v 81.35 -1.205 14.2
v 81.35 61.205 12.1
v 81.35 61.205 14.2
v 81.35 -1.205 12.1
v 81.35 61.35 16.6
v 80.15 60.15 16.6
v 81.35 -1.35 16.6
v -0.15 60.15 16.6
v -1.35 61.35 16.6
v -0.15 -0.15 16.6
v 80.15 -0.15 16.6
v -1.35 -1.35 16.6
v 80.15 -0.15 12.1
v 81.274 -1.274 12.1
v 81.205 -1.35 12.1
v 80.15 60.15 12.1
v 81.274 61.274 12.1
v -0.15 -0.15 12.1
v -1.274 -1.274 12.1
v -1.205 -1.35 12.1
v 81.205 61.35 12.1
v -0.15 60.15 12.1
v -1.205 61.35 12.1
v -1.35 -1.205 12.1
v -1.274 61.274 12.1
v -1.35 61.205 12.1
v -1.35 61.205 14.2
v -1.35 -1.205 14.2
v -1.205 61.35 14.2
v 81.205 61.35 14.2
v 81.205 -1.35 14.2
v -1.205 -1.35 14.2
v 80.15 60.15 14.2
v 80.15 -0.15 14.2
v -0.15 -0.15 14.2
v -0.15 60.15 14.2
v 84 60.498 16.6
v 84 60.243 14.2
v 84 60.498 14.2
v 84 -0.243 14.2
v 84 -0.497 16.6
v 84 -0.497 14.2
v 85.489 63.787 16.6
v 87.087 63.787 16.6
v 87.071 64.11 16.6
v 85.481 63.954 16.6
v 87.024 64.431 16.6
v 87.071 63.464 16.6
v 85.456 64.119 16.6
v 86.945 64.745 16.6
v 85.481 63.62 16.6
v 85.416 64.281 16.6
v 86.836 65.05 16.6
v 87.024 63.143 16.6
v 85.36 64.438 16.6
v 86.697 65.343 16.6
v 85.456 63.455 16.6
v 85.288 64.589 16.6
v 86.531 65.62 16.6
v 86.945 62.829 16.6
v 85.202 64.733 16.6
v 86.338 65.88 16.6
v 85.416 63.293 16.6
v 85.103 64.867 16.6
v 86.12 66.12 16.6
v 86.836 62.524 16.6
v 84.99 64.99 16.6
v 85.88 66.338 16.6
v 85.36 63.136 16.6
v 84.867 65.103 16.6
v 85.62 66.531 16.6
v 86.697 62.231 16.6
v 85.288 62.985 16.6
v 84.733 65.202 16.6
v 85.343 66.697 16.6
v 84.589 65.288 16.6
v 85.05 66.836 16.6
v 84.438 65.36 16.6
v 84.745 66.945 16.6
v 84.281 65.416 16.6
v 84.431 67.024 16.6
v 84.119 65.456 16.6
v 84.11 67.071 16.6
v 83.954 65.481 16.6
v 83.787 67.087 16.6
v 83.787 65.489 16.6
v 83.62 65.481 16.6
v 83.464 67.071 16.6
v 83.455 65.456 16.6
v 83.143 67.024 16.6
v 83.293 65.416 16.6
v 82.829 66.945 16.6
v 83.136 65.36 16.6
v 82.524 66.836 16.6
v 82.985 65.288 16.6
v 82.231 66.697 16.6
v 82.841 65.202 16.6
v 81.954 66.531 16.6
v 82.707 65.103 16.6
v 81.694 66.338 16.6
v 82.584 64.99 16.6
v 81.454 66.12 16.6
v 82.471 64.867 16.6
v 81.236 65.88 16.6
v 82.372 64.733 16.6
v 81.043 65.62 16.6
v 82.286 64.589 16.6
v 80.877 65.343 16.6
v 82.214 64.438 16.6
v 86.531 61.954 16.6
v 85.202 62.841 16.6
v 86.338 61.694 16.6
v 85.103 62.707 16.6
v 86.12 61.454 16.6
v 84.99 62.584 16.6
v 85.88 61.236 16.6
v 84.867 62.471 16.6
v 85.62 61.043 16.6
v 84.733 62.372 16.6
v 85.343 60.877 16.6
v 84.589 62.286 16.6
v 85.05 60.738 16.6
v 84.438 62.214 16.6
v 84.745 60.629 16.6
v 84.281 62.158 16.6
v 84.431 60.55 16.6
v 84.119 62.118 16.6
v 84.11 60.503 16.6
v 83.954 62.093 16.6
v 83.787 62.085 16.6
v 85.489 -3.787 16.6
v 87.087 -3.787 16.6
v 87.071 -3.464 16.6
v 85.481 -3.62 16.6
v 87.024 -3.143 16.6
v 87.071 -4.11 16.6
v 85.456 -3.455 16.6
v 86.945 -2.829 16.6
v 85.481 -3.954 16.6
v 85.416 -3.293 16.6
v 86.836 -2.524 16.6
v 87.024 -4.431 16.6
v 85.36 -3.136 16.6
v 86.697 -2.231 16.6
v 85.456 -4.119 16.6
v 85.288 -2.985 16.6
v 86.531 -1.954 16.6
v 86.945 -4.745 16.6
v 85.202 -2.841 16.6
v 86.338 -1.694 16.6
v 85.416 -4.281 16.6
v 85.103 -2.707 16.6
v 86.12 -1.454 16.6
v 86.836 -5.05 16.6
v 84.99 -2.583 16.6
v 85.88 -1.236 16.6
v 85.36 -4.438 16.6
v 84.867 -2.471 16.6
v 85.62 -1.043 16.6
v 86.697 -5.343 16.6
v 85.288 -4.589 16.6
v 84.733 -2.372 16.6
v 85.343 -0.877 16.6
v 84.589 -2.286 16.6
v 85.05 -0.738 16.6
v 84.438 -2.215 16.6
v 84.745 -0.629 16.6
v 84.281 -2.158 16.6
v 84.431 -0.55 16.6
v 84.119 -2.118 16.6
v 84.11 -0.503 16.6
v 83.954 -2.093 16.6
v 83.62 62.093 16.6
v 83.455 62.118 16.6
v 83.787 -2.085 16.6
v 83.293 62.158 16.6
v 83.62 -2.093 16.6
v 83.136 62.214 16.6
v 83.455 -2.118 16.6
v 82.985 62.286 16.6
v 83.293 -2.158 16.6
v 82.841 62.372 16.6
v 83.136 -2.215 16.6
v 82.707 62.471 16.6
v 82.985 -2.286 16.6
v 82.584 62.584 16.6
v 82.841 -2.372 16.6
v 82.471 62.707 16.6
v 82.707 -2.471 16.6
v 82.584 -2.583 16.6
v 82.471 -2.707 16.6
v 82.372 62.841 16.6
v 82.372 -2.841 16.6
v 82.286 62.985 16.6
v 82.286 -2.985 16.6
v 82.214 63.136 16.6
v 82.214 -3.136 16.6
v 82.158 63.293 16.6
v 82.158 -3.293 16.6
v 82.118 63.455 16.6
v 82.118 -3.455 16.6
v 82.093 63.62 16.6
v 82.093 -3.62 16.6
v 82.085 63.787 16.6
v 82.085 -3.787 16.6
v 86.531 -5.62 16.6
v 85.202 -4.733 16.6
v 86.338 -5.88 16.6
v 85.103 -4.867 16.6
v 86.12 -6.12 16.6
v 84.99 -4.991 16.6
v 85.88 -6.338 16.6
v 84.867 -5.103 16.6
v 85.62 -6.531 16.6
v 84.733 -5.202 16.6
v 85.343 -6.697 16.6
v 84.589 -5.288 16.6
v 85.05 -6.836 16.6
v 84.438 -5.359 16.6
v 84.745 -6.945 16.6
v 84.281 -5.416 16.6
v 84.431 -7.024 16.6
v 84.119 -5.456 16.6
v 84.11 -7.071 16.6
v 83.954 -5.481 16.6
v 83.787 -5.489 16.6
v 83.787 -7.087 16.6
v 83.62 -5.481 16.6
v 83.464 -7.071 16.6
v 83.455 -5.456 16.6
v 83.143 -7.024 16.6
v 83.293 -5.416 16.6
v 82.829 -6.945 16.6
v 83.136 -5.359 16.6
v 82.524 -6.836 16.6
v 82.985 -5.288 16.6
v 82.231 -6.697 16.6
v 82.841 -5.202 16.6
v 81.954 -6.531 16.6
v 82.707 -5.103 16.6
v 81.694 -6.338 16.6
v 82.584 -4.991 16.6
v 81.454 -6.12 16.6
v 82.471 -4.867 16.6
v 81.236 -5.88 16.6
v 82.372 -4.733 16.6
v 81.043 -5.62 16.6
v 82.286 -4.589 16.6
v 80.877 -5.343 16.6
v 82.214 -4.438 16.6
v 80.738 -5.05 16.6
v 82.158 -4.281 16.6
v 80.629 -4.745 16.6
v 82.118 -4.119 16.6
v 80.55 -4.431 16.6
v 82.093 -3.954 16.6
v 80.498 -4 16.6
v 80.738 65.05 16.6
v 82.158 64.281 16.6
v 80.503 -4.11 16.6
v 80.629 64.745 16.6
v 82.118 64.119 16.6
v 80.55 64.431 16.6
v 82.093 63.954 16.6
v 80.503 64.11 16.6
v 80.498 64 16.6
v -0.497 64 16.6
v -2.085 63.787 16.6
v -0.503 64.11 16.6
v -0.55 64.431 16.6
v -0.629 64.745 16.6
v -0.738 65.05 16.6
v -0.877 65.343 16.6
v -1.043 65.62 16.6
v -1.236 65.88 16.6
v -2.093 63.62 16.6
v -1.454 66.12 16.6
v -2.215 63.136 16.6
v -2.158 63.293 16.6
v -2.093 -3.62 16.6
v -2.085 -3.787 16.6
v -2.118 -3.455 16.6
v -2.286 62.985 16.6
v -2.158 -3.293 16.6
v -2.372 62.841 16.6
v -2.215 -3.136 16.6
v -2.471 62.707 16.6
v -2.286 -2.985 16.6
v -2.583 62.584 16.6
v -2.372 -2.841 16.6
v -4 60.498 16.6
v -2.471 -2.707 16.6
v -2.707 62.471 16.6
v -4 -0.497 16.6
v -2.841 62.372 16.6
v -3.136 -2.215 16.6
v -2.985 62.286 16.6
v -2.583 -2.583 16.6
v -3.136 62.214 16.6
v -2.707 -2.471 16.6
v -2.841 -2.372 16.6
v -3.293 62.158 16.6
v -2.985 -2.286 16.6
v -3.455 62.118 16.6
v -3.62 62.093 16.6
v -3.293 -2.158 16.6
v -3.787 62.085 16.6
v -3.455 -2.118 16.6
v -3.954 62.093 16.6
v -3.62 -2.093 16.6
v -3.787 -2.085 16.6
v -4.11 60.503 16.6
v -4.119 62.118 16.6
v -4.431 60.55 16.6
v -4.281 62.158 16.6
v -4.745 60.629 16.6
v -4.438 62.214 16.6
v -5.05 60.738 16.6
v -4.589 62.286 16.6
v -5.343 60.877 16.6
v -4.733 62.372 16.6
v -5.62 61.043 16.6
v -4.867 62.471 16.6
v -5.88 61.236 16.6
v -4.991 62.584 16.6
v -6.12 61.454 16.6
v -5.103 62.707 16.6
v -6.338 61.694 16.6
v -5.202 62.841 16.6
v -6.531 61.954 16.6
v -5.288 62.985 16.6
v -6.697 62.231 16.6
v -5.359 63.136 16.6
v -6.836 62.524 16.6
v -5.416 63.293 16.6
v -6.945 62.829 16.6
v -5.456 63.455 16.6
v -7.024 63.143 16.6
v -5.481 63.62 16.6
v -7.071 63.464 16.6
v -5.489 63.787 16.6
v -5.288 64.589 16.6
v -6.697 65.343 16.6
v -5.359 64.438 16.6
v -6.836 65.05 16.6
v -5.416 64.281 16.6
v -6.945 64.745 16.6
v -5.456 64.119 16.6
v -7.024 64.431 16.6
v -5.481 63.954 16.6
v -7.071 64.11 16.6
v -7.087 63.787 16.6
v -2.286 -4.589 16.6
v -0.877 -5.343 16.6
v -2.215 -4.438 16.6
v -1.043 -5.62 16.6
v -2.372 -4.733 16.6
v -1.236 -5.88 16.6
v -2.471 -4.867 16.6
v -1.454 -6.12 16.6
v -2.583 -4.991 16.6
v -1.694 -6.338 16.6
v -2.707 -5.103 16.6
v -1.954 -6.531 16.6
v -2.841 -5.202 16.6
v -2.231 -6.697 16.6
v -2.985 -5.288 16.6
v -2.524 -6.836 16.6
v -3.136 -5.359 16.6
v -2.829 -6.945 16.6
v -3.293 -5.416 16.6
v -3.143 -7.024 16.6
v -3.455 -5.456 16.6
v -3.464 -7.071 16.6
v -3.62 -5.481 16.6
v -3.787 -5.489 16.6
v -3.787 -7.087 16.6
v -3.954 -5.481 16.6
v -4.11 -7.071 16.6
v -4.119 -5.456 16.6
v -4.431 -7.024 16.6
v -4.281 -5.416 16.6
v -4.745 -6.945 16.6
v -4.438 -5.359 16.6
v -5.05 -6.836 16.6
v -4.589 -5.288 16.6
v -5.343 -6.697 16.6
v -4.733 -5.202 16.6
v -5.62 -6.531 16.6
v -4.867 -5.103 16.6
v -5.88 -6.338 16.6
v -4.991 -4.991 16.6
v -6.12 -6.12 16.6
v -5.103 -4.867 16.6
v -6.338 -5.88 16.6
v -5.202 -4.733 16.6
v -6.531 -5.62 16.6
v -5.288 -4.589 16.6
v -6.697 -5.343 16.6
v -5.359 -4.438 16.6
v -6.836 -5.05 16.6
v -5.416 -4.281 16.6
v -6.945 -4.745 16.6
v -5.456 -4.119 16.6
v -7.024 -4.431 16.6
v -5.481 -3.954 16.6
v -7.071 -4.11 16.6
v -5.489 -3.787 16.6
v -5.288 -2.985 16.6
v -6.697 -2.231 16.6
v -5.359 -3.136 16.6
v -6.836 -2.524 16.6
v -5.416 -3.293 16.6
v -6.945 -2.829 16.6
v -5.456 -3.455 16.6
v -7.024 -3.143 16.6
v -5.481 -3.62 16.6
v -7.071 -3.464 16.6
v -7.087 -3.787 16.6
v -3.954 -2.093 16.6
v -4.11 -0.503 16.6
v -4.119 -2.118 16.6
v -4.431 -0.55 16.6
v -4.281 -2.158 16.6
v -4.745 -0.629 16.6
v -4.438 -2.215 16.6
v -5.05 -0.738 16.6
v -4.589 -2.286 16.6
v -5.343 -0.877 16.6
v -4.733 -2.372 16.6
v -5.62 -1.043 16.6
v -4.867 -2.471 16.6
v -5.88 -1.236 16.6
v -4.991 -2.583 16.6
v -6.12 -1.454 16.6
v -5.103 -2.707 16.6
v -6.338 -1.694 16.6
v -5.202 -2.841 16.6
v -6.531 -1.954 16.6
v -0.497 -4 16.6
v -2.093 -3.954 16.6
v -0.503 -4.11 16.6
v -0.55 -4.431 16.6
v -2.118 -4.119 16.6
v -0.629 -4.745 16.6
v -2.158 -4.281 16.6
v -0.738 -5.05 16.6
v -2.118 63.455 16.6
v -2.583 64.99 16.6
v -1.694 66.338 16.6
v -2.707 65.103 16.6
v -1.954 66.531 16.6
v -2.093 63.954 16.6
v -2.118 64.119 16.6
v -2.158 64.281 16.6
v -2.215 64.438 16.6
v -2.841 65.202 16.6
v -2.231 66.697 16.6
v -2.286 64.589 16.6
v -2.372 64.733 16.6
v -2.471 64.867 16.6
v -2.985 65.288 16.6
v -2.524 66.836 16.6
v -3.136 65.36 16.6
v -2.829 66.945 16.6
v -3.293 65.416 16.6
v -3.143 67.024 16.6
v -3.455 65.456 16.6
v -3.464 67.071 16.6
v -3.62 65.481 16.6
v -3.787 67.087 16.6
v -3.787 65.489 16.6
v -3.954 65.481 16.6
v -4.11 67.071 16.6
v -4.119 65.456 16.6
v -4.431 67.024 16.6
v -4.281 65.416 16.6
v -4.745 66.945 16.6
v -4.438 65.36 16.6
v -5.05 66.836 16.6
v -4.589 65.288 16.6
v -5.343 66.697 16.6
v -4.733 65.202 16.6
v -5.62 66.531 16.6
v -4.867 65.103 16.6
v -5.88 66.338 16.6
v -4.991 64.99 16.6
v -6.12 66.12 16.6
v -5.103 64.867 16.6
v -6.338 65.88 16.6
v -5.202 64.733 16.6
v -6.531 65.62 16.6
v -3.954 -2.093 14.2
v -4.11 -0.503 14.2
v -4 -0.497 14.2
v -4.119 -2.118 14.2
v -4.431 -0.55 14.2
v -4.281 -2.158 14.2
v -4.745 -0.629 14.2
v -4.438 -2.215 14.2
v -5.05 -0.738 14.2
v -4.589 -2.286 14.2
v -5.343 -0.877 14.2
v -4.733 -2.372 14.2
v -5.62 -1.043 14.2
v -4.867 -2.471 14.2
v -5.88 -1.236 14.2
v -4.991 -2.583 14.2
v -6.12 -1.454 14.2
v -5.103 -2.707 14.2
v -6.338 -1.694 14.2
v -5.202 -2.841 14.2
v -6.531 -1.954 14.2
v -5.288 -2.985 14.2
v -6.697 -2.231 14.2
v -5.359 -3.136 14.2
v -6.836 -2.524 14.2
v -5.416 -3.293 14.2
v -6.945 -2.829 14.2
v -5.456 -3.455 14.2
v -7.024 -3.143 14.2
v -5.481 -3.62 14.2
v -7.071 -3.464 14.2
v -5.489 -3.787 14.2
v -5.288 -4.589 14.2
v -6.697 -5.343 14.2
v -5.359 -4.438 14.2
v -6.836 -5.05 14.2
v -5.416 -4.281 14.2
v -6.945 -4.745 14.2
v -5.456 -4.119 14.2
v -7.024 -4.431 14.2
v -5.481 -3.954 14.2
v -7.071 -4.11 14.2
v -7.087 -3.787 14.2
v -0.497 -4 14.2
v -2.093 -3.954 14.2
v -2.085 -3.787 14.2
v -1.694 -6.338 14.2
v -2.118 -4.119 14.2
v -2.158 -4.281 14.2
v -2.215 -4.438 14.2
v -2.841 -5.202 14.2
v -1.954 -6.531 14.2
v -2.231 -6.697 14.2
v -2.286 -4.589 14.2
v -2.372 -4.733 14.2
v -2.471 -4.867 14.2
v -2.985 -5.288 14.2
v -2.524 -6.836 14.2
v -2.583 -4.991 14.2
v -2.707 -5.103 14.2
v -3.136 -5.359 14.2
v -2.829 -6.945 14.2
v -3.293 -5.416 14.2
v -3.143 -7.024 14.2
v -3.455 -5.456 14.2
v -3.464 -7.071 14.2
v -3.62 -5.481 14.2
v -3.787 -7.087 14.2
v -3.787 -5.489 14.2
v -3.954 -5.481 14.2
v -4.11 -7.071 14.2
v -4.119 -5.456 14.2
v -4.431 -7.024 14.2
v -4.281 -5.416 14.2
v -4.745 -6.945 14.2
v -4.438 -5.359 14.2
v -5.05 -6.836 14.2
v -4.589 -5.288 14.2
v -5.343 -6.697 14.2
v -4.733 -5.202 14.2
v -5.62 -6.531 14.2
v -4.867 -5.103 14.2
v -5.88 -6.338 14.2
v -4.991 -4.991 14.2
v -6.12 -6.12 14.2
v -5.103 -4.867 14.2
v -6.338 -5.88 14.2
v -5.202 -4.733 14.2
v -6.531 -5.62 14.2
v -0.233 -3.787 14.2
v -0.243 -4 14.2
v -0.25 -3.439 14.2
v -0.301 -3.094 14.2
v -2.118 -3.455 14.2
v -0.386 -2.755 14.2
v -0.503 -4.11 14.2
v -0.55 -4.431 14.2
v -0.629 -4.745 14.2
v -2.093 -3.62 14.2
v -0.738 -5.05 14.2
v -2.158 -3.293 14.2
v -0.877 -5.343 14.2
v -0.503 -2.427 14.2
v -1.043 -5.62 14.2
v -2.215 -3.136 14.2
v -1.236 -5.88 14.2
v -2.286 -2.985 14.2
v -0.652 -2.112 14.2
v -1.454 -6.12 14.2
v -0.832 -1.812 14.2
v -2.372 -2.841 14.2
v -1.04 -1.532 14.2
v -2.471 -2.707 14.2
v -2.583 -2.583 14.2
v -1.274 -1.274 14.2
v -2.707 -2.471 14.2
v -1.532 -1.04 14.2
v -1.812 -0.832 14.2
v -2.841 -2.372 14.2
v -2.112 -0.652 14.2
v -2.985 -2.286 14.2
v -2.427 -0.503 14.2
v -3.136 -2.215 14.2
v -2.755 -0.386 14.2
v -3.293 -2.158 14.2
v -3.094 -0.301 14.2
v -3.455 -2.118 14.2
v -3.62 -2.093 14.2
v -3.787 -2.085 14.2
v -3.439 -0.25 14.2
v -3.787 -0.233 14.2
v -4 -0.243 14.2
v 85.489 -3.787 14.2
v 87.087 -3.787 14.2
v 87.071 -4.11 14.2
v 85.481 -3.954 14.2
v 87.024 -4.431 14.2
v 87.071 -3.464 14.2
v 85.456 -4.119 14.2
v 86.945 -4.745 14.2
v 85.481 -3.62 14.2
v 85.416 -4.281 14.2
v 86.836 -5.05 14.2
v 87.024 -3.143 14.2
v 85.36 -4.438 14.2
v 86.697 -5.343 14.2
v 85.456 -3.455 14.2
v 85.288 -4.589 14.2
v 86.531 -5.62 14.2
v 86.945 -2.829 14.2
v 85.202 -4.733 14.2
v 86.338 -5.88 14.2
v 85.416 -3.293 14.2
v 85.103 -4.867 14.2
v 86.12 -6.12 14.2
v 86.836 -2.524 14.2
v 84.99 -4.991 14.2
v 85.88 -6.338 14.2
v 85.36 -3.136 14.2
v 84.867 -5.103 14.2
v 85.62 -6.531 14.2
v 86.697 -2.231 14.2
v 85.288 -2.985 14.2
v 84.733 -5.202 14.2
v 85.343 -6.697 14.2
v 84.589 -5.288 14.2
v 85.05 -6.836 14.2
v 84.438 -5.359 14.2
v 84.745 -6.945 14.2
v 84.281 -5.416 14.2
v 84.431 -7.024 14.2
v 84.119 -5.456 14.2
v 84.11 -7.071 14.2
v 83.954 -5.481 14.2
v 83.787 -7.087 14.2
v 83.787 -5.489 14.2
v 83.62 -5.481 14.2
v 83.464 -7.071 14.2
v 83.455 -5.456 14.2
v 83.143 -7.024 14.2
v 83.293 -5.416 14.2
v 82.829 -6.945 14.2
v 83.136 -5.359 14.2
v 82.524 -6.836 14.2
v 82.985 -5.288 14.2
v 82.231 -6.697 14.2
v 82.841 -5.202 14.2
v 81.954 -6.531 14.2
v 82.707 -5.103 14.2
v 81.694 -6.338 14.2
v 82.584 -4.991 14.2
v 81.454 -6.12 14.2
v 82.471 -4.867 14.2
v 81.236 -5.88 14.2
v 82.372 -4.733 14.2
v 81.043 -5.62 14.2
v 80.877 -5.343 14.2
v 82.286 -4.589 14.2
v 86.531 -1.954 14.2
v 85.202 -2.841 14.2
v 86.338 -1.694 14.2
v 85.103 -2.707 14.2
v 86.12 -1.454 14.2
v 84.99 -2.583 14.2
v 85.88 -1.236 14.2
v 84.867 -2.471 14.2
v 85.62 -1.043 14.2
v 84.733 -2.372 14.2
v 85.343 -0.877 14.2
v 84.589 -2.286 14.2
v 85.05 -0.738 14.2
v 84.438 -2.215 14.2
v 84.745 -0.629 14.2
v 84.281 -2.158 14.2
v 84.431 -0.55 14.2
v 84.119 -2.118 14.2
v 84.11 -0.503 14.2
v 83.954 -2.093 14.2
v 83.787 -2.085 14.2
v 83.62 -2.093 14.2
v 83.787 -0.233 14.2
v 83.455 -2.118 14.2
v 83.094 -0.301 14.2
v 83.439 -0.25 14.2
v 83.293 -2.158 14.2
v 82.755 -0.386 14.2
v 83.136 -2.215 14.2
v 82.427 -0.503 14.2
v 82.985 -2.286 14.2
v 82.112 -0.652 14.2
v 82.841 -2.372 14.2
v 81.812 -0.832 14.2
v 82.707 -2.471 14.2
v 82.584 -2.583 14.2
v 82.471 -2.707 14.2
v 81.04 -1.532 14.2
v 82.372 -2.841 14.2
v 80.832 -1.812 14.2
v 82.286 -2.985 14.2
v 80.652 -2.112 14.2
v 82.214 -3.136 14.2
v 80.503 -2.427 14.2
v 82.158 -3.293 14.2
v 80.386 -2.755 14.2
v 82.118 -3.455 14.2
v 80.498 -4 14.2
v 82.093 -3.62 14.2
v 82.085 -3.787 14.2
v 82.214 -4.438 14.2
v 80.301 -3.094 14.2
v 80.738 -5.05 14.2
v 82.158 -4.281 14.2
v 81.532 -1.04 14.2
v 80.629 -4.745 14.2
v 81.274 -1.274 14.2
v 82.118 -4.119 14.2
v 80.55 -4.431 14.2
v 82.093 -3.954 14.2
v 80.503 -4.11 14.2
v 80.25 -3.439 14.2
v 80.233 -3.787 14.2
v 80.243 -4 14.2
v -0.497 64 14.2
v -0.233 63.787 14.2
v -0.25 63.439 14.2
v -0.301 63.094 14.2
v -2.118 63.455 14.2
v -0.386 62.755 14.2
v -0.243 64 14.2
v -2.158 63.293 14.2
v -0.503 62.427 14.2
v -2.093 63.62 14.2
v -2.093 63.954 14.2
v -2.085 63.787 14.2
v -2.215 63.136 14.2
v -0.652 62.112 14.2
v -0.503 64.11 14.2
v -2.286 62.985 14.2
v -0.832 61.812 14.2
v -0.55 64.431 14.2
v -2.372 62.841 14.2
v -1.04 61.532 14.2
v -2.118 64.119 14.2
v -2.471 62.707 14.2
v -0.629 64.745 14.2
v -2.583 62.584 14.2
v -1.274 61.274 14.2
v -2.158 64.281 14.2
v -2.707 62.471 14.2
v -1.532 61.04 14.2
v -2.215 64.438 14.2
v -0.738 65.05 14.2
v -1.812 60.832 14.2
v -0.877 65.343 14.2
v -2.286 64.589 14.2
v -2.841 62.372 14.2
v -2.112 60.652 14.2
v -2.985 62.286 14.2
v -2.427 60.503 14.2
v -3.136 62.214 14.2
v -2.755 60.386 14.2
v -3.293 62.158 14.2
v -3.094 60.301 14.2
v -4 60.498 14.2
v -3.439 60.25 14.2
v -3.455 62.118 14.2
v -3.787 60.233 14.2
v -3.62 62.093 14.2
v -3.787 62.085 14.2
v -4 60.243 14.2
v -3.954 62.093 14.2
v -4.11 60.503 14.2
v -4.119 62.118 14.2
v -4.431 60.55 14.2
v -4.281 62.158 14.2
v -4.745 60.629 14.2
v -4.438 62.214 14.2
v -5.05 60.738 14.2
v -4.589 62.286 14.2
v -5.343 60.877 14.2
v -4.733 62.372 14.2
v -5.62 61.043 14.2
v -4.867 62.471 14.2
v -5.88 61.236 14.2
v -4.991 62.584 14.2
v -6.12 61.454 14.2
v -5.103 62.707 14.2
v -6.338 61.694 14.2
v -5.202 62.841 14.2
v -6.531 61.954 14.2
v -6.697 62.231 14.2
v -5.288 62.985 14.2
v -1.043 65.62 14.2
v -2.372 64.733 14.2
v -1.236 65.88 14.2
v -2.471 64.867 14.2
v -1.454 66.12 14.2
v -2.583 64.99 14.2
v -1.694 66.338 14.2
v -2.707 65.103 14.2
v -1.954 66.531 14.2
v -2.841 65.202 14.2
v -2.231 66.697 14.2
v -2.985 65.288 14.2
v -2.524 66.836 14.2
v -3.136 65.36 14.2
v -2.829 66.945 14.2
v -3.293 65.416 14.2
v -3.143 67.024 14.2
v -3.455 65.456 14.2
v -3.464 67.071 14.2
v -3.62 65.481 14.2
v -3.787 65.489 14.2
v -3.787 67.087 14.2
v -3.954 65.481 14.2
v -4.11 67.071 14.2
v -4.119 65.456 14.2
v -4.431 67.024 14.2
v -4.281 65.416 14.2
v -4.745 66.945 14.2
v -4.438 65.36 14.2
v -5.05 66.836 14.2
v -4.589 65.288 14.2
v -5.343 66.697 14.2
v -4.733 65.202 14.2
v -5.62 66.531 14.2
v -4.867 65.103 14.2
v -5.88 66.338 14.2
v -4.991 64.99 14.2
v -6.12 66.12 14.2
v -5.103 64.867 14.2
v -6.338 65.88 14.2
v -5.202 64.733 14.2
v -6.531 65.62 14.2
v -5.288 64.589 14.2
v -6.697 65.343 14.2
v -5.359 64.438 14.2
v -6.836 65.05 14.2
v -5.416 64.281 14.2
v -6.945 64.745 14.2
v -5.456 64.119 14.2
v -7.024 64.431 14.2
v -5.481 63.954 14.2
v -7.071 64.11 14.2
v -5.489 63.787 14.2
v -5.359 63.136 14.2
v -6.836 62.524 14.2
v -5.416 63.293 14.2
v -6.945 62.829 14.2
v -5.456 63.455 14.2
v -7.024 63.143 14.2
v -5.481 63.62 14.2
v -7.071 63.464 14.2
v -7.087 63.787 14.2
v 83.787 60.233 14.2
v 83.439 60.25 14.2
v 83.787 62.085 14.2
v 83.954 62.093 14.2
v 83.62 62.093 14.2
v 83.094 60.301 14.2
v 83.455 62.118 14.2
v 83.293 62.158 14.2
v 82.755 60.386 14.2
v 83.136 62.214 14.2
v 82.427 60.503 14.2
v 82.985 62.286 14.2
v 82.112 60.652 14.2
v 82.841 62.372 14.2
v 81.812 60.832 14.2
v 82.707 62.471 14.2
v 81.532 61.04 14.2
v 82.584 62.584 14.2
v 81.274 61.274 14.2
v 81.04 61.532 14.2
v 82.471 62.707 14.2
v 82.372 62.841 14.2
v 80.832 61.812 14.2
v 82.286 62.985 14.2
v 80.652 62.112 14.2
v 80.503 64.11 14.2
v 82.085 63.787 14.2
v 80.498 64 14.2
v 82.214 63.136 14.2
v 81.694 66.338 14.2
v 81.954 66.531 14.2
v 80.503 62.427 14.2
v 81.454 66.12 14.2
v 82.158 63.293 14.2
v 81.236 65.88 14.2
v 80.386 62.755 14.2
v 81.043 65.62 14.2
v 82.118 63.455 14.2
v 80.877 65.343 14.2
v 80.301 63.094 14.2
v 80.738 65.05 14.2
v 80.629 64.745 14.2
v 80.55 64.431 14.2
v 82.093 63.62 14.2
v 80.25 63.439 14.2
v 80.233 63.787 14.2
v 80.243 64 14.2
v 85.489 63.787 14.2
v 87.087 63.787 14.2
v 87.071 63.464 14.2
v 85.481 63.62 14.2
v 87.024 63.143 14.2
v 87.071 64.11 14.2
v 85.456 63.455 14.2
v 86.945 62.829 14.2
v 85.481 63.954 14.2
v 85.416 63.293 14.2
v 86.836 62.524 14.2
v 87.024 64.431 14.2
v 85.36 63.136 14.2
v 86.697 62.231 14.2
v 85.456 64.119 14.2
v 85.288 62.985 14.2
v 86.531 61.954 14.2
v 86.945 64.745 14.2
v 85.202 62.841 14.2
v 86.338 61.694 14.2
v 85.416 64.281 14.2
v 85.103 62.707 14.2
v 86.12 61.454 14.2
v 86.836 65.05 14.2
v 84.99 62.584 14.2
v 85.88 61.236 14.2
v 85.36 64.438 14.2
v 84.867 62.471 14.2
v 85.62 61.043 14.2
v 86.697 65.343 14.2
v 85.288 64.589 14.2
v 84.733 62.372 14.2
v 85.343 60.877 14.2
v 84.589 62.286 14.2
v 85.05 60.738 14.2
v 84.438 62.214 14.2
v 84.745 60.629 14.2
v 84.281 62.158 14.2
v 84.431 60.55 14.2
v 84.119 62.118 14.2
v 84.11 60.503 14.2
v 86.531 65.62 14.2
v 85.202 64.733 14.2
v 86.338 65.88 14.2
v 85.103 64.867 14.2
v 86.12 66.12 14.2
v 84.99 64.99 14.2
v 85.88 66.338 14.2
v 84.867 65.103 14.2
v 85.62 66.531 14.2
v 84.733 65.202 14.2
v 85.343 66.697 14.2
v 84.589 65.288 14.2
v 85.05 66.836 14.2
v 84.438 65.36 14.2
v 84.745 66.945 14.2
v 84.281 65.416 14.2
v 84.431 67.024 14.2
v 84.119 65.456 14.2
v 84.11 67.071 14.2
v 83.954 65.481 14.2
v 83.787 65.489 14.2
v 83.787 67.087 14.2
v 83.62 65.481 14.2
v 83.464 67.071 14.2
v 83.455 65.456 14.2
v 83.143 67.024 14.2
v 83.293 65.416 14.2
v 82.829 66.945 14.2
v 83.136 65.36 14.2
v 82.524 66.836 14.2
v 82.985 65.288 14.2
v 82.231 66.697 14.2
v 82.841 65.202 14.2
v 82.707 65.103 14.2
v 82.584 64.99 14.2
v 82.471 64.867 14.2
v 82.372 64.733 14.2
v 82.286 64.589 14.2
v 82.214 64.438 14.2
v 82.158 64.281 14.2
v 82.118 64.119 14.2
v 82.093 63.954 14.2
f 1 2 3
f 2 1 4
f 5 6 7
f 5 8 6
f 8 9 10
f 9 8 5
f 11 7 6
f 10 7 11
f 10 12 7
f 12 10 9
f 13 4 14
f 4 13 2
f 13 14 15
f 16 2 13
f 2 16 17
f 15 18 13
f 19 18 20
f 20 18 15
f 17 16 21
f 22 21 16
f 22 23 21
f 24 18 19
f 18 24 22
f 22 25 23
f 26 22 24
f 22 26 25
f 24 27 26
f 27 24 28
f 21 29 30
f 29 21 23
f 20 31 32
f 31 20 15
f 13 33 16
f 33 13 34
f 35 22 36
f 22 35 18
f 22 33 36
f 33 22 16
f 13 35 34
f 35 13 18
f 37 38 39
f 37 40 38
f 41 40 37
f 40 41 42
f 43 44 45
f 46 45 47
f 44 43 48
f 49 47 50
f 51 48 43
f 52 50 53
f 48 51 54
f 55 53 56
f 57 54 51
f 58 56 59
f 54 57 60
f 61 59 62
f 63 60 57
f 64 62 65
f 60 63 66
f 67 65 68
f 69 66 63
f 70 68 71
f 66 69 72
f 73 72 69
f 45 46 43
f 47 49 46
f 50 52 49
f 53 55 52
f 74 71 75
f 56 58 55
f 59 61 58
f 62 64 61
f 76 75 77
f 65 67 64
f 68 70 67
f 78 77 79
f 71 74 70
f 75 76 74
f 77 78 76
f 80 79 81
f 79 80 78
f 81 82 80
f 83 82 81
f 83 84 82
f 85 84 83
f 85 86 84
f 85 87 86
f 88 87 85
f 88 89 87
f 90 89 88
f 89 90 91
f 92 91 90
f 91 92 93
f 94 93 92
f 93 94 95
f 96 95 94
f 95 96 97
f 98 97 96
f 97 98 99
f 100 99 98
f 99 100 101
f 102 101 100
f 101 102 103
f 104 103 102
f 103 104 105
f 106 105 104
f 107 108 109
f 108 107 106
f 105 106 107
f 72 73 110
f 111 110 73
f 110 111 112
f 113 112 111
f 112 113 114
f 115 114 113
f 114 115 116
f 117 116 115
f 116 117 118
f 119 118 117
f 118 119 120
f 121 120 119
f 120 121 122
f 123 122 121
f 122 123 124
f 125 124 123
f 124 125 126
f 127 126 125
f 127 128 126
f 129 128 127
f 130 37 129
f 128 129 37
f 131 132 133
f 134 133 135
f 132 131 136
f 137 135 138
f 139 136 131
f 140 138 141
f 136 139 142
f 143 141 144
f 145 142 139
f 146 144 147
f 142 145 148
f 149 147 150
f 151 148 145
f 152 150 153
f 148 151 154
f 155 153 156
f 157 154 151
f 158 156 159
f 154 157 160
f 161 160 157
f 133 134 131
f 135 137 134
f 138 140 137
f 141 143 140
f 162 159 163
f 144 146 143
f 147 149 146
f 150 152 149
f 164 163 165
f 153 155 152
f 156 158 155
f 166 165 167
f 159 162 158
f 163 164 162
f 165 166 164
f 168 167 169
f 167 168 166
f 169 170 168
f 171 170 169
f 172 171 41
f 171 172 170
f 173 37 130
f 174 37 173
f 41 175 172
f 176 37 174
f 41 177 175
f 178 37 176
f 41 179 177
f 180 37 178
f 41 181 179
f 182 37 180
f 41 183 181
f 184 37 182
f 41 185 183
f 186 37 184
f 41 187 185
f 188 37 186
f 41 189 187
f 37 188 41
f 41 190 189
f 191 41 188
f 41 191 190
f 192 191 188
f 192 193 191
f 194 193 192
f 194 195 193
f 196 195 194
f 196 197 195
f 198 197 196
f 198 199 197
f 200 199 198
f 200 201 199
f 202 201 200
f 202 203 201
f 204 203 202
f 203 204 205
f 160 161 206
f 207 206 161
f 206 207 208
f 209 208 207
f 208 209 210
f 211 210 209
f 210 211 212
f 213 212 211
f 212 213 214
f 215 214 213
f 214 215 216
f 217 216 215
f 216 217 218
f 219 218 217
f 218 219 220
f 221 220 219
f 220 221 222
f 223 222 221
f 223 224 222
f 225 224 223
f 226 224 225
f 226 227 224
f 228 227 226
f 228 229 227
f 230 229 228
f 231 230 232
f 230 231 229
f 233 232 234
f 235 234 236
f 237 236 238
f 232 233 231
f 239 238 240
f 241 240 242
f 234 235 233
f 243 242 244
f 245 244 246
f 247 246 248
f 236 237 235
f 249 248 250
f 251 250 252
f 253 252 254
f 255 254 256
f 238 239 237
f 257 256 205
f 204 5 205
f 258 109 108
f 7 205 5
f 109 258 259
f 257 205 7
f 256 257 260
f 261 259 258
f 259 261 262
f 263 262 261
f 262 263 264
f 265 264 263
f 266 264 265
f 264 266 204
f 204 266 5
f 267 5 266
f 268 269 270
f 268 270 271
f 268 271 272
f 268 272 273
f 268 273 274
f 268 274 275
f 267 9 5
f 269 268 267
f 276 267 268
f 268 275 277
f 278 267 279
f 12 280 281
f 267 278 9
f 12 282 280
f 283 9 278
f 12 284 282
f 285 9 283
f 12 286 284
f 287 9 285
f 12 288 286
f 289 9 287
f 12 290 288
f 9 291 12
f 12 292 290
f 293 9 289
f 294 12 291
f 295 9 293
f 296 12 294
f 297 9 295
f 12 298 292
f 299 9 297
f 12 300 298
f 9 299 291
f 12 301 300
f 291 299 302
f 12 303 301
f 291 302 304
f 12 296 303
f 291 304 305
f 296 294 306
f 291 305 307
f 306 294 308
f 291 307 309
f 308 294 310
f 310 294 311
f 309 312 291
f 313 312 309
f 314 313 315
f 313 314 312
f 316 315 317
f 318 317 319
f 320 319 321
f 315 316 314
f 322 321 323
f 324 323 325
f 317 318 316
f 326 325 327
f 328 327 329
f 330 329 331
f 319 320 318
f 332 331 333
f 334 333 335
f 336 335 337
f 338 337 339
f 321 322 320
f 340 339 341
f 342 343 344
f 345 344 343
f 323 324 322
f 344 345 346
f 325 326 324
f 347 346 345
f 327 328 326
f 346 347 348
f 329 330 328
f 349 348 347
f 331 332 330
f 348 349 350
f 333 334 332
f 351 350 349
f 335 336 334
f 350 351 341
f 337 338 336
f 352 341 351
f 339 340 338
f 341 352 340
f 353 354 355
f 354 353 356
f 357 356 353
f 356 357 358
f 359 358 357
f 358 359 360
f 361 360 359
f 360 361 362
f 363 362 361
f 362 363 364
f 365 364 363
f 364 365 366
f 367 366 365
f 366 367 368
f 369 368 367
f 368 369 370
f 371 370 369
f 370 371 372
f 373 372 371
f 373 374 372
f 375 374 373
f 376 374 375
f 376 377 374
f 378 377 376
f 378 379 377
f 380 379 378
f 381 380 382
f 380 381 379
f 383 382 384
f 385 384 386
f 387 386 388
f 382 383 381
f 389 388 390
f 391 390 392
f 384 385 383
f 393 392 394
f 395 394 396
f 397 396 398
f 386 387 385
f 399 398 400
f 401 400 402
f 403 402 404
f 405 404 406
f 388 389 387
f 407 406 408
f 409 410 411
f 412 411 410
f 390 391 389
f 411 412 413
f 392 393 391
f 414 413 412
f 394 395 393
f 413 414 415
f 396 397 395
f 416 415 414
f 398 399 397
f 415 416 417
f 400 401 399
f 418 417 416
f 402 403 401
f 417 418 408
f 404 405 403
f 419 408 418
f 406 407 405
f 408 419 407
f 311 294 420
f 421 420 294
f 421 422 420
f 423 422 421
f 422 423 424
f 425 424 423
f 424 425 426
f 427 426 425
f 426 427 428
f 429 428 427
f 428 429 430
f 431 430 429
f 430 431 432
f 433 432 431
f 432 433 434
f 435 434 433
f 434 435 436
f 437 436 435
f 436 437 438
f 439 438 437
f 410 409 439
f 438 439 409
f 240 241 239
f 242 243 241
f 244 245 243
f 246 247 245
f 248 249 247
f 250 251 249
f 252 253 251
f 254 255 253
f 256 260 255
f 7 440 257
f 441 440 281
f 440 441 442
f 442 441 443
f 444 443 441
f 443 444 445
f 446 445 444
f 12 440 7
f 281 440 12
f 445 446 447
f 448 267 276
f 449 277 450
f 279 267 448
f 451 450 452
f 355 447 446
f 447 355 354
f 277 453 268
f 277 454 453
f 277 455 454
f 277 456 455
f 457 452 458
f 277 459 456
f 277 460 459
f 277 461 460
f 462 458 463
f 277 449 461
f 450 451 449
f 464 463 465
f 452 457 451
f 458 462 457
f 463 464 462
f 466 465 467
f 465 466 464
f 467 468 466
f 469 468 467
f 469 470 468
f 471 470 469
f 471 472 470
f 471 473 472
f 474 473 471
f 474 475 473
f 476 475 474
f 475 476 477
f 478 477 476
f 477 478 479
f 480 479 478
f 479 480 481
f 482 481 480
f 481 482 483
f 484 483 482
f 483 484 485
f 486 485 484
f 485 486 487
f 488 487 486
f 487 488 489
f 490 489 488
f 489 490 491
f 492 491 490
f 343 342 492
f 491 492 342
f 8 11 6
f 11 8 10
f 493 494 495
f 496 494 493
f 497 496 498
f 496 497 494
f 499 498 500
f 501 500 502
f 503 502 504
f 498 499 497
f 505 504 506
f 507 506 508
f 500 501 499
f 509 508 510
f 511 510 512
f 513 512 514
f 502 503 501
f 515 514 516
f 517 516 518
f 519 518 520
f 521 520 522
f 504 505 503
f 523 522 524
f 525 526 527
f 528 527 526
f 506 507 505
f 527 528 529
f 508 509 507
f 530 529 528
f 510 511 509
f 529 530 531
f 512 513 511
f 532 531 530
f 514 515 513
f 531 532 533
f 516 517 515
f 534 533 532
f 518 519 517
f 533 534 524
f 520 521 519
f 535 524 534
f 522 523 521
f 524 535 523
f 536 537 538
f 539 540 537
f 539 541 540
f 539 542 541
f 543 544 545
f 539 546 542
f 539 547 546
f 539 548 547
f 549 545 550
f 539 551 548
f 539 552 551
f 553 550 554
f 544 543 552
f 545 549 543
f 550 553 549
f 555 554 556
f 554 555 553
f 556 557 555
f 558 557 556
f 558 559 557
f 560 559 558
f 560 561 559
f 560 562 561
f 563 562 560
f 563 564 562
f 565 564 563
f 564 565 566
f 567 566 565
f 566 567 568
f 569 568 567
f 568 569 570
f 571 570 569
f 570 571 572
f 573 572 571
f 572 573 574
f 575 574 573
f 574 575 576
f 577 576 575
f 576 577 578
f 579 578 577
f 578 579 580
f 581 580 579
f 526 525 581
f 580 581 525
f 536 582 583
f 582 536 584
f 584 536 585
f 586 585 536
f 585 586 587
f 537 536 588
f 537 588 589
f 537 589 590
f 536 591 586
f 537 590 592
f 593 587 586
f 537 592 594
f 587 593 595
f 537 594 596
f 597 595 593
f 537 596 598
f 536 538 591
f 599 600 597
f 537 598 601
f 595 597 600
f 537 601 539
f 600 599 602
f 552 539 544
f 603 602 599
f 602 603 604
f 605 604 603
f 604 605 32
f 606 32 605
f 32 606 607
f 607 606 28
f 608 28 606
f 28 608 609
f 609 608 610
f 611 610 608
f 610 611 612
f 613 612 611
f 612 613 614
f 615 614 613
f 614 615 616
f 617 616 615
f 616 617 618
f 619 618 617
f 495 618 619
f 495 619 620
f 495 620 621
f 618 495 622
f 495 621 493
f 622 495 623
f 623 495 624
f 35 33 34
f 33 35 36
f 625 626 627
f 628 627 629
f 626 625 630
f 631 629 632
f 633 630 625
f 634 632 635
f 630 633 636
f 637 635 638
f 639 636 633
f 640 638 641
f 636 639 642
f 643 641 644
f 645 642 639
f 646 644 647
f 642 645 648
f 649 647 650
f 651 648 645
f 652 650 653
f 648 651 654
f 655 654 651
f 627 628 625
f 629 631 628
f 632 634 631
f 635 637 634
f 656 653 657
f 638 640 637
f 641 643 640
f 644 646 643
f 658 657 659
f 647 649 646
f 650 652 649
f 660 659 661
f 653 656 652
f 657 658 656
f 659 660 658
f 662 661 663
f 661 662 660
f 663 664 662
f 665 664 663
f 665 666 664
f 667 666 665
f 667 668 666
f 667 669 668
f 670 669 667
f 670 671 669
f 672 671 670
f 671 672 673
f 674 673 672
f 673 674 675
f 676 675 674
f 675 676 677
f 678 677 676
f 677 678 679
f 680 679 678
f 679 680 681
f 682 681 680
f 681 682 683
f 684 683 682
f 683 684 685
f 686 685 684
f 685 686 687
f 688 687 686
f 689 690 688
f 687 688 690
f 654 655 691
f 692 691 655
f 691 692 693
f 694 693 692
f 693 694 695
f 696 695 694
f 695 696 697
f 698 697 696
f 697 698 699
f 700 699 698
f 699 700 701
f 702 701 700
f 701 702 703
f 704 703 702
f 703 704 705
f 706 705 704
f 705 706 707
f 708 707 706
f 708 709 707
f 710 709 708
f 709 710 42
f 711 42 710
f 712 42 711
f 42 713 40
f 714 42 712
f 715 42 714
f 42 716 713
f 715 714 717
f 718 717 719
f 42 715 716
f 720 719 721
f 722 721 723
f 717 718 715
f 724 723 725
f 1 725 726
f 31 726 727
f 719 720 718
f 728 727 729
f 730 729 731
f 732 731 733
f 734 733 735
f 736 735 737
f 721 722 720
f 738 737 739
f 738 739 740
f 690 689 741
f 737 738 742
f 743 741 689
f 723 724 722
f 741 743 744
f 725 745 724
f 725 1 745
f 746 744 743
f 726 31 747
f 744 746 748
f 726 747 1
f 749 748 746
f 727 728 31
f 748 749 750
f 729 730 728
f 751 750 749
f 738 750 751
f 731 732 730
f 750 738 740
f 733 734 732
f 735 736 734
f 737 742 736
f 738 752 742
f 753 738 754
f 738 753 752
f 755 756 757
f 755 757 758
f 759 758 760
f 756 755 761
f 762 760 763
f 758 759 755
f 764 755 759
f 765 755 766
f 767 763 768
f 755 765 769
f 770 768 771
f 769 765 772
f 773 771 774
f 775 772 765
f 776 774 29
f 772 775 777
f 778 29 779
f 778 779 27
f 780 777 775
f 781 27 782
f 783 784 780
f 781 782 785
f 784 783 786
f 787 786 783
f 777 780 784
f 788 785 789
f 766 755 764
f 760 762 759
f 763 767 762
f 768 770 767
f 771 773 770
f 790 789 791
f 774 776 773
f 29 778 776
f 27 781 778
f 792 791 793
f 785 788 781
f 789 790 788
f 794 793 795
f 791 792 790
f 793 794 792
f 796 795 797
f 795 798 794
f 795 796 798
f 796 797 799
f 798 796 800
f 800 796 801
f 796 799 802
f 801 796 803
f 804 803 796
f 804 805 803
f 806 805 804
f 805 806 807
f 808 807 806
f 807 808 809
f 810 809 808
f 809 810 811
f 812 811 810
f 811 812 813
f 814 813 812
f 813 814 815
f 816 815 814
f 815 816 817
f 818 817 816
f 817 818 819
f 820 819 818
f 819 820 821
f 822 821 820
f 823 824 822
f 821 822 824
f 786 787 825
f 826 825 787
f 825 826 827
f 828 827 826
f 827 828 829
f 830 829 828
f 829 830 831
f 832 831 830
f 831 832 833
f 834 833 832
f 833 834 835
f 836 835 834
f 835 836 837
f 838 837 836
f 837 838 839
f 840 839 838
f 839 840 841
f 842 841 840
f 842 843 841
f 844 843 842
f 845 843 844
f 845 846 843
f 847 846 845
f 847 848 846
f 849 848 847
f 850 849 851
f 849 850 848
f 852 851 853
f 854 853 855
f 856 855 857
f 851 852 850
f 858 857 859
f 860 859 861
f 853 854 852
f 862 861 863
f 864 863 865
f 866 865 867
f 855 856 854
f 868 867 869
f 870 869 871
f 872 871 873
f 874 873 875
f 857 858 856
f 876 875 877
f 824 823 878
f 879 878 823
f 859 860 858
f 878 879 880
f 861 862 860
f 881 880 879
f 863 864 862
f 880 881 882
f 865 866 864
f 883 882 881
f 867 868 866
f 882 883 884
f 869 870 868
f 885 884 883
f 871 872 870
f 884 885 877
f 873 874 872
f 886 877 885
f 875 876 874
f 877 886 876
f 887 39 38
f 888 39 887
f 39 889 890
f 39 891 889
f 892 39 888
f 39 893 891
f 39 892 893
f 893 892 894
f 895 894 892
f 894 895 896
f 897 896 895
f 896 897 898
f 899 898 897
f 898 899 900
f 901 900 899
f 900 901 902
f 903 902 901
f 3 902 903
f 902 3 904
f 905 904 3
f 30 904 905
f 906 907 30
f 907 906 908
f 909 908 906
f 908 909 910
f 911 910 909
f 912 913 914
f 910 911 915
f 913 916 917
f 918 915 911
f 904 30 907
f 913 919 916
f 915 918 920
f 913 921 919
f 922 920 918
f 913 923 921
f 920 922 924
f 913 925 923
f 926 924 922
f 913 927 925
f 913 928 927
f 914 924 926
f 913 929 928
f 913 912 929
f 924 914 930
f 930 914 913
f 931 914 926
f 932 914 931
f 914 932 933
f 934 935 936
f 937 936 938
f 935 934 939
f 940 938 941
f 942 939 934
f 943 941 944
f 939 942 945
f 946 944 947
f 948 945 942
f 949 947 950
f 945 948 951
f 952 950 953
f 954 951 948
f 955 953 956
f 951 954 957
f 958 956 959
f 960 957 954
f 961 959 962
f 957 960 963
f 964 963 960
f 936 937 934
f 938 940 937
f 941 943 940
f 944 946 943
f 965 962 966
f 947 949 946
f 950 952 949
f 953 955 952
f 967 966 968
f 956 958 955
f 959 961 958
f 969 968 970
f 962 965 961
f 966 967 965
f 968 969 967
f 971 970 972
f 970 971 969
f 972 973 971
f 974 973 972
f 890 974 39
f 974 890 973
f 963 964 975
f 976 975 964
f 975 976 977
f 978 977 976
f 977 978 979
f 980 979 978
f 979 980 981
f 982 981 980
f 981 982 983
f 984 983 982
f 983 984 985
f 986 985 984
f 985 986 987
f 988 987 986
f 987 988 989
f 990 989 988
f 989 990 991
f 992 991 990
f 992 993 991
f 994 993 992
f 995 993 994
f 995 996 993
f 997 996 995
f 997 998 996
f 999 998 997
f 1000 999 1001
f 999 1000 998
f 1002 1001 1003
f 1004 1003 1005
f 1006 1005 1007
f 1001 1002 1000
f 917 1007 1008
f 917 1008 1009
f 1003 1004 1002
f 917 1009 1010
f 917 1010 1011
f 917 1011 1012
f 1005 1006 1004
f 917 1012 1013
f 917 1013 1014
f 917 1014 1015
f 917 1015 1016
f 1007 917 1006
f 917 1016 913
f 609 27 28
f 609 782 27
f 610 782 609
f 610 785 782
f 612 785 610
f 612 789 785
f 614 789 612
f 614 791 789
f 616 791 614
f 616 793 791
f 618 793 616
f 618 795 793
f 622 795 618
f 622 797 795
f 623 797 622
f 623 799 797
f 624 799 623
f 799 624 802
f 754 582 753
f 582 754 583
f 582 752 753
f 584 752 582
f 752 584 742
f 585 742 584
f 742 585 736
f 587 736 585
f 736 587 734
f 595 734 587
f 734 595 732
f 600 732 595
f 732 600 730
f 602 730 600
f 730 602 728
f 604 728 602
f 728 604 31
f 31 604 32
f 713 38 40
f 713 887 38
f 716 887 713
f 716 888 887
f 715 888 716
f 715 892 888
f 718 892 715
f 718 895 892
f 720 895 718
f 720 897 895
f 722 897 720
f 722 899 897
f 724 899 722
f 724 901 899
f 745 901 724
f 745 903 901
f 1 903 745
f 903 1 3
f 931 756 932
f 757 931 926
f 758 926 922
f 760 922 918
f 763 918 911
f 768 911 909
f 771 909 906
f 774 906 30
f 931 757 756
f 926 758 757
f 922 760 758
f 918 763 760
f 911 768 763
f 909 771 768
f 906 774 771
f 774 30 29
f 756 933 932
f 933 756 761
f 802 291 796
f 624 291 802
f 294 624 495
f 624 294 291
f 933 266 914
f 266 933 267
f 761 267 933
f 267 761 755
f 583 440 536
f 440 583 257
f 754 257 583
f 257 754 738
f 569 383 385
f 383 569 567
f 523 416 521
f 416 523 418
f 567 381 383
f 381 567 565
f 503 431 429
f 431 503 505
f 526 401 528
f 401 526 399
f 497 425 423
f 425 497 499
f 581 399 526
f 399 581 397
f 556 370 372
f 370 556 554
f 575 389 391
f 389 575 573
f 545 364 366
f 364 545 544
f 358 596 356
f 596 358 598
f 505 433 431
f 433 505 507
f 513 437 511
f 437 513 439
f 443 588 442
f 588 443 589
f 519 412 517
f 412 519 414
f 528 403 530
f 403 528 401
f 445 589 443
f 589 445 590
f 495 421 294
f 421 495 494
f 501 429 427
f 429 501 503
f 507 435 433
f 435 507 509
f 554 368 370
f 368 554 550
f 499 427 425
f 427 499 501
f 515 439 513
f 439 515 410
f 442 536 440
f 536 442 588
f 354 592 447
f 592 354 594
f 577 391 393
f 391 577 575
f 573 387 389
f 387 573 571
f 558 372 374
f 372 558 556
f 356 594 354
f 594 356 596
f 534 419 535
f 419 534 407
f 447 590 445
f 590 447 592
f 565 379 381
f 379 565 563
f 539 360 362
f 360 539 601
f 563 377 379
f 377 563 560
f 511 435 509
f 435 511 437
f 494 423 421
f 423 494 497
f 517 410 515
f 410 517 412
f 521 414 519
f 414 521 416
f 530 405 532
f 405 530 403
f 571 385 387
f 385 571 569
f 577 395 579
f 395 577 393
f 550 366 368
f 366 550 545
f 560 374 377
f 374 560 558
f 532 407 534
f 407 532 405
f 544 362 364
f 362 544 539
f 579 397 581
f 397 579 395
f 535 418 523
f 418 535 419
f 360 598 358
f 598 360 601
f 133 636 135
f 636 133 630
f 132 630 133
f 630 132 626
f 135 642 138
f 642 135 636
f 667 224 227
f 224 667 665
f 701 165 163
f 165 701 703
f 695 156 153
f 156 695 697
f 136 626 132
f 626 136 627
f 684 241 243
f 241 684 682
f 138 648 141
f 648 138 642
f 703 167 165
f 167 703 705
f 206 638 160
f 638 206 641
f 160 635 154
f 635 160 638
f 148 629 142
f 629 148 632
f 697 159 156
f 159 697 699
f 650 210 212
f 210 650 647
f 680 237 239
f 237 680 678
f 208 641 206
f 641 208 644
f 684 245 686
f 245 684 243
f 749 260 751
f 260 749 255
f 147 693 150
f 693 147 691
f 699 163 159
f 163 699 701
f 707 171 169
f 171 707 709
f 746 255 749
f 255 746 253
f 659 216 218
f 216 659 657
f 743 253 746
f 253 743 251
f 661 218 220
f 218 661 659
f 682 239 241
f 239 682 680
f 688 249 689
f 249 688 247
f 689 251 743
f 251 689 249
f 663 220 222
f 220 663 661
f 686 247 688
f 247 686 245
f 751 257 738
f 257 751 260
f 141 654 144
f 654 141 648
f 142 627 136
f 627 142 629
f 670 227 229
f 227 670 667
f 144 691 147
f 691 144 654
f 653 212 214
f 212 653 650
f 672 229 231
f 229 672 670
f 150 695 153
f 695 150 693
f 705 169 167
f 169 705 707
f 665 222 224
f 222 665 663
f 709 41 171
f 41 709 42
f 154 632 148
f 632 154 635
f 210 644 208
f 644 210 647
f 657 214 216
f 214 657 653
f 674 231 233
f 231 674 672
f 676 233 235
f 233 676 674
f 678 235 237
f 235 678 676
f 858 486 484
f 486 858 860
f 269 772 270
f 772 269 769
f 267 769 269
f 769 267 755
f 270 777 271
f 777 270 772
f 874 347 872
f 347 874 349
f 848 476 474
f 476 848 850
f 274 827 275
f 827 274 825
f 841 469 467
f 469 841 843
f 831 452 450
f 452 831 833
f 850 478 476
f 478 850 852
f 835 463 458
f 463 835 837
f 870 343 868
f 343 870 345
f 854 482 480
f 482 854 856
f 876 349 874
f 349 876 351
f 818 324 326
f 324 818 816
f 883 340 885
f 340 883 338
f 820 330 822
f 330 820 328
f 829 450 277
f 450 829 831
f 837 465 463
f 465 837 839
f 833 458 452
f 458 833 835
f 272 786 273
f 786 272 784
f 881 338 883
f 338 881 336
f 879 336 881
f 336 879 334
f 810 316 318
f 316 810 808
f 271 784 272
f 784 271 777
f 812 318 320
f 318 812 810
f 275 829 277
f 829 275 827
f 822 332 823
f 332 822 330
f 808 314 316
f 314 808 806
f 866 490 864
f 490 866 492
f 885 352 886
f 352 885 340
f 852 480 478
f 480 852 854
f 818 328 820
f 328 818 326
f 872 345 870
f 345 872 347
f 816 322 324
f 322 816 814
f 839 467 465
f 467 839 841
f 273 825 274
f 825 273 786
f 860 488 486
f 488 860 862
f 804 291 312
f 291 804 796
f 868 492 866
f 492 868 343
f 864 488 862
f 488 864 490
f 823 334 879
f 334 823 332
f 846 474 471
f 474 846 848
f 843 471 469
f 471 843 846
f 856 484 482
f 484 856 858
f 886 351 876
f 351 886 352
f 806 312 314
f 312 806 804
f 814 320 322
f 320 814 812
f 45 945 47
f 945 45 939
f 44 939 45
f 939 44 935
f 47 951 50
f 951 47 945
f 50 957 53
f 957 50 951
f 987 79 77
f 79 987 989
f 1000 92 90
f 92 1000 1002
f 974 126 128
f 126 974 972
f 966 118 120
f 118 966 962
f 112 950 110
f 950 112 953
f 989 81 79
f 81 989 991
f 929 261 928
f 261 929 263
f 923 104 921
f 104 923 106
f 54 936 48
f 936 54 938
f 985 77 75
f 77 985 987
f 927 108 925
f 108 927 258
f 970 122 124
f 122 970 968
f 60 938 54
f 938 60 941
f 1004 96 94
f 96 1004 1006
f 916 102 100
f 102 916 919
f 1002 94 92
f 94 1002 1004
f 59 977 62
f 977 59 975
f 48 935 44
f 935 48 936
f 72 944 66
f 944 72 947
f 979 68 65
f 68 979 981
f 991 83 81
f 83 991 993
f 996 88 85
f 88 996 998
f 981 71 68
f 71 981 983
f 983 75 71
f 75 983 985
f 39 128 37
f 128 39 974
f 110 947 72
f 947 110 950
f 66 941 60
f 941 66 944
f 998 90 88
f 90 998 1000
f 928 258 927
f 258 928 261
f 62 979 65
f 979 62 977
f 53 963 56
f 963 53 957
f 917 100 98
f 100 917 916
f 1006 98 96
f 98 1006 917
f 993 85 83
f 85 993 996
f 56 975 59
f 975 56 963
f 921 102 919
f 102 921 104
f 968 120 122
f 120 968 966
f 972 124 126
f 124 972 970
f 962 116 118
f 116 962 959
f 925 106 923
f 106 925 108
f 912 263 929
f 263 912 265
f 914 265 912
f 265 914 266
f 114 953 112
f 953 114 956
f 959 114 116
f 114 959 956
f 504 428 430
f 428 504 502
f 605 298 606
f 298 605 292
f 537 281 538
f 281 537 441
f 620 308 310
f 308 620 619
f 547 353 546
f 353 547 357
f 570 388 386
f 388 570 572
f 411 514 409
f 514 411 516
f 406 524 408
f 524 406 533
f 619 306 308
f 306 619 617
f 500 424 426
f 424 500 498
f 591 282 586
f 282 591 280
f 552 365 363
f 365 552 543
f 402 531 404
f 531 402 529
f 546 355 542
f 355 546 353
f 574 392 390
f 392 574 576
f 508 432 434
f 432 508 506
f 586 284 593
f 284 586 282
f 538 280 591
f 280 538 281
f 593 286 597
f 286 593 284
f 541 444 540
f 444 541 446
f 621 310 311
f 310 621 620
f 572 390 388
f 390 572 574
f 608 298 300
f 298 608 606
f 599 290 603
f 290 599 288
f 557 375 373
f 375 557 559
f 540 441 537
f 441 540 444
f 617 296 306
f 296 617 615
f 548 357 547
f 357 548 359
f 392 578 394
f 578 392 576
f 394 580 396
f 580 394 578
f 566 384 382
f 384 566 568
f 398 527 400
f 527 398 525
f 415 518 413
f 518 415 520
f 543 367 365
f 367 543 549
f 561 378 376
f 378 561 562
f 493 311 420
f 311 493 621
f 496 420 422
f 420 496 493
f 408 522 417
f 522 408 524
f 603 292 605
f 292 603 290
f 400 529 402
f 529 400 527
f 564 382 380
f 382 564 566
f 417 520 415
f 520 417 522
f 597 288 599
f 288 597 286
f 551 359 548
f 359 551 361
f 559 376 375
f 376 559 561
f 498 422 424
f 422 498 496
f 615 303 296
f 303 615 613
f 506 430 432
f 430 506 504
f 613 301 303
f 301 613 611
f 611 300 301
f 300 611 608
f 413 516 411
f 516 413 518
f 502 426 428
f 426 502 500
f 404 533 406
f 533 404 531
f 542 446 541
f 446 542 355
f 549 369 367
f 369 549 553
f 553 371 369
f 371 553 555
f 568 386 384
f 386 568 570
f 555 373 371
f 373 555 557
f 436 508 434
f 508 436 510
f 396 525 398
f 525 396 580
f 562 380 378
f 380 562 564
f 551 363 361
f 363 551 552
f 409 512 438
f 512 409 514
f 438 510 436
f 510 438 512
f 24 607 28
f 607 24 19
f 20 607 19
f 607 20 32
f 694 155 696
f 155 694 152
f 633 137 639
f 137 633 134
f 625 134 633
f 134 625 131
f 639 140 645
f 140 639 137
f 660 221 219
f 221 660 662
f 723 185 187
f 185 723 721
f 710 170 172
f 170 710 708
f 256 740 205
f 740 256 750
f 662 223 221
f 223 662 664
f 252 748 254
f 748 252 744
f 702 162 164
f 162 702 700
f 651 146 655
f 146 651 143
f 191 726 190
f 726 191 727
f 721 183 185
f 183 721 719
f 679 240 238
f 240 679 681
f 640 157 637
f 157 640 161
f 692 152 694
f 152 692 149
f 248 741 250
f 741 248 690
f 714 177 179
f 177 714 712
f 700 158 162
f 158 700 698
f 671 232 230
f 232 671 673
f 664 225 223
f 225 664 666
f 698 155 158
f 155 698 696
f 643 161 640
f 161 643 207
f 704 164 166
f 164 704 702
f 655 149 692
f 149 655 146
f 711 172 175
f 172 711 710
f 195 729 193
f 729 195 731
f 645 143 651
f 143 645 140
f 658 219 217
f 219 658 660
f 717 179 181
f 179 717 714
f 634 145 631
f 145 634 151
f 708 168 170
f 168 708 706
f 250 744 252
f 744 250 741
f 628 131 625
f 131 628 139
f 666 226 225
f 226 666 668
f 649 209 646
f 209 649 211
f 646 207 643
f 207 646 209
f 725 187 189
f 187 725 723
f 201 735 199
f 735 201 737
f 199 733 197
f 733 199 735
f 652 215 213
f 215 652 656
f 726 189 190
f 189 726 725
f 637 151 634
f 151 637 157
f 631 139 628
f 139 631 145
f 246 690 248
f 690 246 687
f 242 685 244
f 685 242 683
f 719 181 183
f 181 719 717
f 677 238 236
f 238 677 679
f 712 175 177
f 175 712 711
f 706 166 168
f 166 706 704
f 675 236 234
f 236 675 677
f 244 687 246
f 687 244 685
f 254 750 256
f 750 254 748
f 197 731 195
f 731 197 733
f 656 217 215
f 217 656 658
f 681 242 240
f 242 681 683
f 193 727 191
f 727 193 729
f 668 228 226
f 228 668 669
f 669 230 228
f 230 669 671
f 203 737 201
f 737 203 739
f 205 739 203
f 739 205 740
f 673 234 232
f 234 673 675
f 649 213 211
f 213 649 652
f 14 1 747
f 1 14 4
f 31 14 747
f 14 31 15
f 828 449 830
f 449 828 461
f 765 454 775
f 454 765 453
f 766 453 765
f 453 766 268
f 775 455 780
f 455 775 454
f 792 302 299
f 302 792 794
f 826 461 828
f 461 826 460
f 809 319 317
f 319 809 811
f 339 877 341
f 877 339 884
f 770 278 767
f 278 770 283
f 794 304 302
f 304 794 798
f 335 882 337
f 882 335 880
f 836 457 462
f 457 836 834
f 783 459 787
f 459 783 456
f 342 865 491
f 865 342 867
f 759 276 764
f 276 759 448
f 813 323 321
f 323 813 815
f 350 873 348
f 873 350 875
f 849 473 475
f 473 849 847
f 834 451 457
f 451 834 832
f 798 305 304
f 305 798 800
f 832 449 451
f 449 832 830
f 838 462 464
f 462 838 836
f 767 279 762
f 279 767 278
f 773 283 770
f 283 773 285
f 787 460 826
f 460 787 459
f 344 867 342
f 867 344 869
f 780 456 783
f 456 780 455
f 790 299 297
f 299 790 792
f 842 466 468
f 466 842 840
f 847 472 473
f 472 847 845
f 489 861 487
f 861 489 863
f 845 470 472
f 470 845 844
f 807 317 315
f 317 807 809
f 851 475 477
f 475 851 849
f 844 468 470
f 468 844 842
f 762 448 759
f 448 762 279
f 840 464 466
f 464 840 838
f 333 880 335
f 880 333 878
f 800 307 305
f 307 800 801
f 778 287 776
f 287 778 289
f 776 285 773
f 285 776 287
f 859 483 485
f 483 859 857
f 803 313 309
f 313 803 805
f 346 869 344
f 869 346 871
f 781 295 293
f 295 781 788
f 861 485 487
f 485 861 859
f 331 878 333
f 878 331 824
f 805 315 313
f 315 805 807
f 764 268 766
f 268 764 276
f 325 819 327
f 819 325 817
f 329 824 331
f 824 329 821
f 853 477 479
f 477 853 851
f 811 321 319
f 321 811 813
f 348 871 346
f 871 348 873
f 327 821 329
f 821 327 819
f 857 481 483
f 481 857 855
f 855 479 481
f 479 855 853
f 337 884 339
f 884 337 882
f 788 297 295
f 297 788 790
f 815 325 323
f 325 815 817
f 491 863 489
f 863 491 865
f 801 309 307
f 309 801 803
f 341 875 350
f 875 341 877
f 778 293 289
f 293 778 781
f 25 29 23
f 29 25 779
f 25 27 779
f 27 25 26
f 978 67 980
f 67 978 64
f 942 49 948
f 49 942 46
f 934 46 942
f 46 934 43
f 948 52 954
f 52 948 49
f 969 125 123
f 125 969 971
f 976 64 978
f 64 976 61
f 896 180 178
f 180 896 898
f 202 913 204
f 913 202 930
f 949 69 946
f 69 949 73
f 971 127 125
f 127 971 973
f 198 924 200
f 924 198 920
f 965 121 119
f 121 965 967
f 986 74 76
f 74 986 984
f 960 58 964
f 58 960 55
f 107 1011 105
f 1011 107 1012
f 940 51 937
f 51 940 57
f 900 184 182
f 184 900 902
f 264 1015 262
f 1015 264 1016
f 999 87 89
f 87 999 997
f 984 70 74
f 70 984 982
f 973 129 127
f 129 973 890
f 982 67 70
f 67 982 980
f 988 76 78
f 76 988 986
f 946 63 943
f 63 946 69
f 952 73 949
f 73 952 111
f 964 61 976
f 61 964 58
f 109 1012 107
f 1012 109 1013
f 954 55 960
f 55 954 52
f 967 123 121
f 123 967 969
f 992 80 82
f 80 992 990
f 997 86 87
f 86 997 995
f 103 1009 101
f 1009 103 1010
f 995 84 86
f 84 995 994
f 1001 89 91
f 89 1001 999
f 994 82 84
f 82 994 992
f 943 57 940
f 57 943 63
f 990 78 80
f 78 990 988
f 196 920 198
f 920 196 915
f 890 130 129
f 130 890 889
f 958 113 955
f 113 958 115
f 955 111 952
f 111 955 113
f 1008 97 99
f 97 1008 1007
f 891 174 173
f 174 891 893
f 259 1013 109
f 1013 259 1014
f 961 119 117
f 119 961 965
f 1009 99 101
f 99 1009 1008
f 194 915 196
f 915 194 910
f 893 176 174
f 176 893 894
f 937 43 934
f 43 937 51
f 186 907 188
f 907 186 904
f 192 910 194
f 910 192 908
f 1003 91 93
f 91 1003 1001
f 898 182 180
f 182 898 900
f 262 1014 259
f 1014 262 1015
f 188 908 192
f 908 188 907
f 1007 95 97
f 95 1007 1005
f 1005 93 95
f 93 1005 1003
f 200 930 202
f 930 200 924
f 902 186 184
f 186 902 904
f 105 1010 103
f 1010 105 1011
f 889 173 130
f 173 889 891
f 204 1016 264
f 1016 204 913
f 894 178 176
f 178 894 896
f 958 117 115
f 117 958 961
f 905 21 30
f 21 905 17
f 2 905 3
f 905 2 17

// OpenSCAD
// body lid
difference() {
  union() {
    // body lid (lid_plate)
    multmatrix([[1, 0, 0, 40], [0, 1, 0, 30], [0, 0, 1, 14.2], [0, 0, 0, 1]]) translate([-44, -34, 0]) cube([88, 68, 2.4]);
    // add lid_lip (lip)
    multmatrix([[1, 0, 0, 40], [0, 1, 0, 30], [0, 0, 1, 12.1], [0, 0, 0, 1]]) difference() { translate([-41.35, -31.35, 0]) cube([82.7, 62.7, 4.5]); translate([0, 0, -1]) translate([-40.15, -30.15, 0]) cube([80.3, 60.3, 6.5]); }
    // add boss_1_pad (pad)
    multmatrix([[1, 0, 0, -3.787006], [0, 1, 0, -3.787006], [0, 0, 1, 14.2], [0, 0, 0, 1]]) cylinder(h=2.4, d=6.6, $fn=64);
    // add boss_2_pad (pad)
    multmatrix([[1, 0, 0, 83.787006], [0, 1, 0, -3.787006], [0, 0, 1, 14.2], [0, 0, 0, 1]]) cylinder(h=2.4, d=6.6, $fn=64);
    // add boss_3_pad (pad)
    multmatrix([[1, 0, 0, -3.787006], [0, 1, 0, 63.787006], [0, 0, 1, 14.2], [0, 0, 0, 1]]) cylinder(h=2.4, d=6.6, $fn=64);
    // add boss_4_pad (pad)
    multmatrix([[1, 0, 0, 83.787006], [0, 1, 0, 63.787006], [0, 0, 1, 14.2], [0, 0, 0, 1]]) cylinder(h=2.4, d=6.6, $fn=64);
  }
  // cut boss_1_lid_hole (screw_hole)
  multmatrix([[1, 0, 0, -3.787006], [0, 1, 0, -3.787006], [0, 0, 1, 13.2], [0, 0, 0, 1]]) cylinder(h=4.4, d=3.4041, $fn=64);
  // cut boss_1_lip_notch (lip_notch)
  multmatrix([[1, 0, 0, -3.787006], [0, 1, 0, -3.787006], [0, 0, 1, 11.1], [0, 0, 0, 1]]) cylinder(h=3.1, d=7.108563, $fn=64);
  // cut boss_2_lid_hole (screw_hole)
  multmatrix([[1, 0, 0, 83.787006], [0, 1, 0, -3.787006], [0, 0, 1, 13.2], [0, 0, 0, 1]]) cylinder(h=4.4, d=3.4041, $fn=64);
  // cut boss_2_lip_notch (lip_notch)
  multmatrix([[1, 0, 0, 83.787006], [0, 1, 0, -3.787006], [0, 0, 1, 11.1], [0, 0, 0, 1]]) cylinder(h=3.1, d=7.108563, $fn=64);
  // cut boss_3_lid_hole (screw_hole)
  multmatrix([[1, 0, 0, -3.787006], [0, 1, 0, 63.787006], [0, 0, 1, 13.2], [0, 0, 0, 1]]) cylinder(h=4.4, d=3.4041, $fn=64);
  // cut boss_3_lip_notch (lip_notch)
  multmatrix([[1, 0, 0, -3.787006], [0, 1, 0, 63.787006], [0, 0, 1, 11.1], [0, 0, 0, 1]]) cylinder(h=3.1, d=7.108563, $fn=64);
  // cut boss_4_lid_hole (screw_hole)
  multmatrix([[1, 0, 0, 83.787006], [0, 1, 0, 63.787006], [0, 0, 1, 13.2], [0, 0, 0, 1]]) cylinder(h=4.4, d=3.4041, $fn=64);
  // cut boss_4_lip_notch (lip_notch)
  multmatrix([[1, 0, 0, 83.787006], [0, 1, 0, 63.787006], [0, 0, 1, 11.1], [0, 0, 0, 1]]) cylinder(h=3.1, d=7.108563, $fn=64);
}
